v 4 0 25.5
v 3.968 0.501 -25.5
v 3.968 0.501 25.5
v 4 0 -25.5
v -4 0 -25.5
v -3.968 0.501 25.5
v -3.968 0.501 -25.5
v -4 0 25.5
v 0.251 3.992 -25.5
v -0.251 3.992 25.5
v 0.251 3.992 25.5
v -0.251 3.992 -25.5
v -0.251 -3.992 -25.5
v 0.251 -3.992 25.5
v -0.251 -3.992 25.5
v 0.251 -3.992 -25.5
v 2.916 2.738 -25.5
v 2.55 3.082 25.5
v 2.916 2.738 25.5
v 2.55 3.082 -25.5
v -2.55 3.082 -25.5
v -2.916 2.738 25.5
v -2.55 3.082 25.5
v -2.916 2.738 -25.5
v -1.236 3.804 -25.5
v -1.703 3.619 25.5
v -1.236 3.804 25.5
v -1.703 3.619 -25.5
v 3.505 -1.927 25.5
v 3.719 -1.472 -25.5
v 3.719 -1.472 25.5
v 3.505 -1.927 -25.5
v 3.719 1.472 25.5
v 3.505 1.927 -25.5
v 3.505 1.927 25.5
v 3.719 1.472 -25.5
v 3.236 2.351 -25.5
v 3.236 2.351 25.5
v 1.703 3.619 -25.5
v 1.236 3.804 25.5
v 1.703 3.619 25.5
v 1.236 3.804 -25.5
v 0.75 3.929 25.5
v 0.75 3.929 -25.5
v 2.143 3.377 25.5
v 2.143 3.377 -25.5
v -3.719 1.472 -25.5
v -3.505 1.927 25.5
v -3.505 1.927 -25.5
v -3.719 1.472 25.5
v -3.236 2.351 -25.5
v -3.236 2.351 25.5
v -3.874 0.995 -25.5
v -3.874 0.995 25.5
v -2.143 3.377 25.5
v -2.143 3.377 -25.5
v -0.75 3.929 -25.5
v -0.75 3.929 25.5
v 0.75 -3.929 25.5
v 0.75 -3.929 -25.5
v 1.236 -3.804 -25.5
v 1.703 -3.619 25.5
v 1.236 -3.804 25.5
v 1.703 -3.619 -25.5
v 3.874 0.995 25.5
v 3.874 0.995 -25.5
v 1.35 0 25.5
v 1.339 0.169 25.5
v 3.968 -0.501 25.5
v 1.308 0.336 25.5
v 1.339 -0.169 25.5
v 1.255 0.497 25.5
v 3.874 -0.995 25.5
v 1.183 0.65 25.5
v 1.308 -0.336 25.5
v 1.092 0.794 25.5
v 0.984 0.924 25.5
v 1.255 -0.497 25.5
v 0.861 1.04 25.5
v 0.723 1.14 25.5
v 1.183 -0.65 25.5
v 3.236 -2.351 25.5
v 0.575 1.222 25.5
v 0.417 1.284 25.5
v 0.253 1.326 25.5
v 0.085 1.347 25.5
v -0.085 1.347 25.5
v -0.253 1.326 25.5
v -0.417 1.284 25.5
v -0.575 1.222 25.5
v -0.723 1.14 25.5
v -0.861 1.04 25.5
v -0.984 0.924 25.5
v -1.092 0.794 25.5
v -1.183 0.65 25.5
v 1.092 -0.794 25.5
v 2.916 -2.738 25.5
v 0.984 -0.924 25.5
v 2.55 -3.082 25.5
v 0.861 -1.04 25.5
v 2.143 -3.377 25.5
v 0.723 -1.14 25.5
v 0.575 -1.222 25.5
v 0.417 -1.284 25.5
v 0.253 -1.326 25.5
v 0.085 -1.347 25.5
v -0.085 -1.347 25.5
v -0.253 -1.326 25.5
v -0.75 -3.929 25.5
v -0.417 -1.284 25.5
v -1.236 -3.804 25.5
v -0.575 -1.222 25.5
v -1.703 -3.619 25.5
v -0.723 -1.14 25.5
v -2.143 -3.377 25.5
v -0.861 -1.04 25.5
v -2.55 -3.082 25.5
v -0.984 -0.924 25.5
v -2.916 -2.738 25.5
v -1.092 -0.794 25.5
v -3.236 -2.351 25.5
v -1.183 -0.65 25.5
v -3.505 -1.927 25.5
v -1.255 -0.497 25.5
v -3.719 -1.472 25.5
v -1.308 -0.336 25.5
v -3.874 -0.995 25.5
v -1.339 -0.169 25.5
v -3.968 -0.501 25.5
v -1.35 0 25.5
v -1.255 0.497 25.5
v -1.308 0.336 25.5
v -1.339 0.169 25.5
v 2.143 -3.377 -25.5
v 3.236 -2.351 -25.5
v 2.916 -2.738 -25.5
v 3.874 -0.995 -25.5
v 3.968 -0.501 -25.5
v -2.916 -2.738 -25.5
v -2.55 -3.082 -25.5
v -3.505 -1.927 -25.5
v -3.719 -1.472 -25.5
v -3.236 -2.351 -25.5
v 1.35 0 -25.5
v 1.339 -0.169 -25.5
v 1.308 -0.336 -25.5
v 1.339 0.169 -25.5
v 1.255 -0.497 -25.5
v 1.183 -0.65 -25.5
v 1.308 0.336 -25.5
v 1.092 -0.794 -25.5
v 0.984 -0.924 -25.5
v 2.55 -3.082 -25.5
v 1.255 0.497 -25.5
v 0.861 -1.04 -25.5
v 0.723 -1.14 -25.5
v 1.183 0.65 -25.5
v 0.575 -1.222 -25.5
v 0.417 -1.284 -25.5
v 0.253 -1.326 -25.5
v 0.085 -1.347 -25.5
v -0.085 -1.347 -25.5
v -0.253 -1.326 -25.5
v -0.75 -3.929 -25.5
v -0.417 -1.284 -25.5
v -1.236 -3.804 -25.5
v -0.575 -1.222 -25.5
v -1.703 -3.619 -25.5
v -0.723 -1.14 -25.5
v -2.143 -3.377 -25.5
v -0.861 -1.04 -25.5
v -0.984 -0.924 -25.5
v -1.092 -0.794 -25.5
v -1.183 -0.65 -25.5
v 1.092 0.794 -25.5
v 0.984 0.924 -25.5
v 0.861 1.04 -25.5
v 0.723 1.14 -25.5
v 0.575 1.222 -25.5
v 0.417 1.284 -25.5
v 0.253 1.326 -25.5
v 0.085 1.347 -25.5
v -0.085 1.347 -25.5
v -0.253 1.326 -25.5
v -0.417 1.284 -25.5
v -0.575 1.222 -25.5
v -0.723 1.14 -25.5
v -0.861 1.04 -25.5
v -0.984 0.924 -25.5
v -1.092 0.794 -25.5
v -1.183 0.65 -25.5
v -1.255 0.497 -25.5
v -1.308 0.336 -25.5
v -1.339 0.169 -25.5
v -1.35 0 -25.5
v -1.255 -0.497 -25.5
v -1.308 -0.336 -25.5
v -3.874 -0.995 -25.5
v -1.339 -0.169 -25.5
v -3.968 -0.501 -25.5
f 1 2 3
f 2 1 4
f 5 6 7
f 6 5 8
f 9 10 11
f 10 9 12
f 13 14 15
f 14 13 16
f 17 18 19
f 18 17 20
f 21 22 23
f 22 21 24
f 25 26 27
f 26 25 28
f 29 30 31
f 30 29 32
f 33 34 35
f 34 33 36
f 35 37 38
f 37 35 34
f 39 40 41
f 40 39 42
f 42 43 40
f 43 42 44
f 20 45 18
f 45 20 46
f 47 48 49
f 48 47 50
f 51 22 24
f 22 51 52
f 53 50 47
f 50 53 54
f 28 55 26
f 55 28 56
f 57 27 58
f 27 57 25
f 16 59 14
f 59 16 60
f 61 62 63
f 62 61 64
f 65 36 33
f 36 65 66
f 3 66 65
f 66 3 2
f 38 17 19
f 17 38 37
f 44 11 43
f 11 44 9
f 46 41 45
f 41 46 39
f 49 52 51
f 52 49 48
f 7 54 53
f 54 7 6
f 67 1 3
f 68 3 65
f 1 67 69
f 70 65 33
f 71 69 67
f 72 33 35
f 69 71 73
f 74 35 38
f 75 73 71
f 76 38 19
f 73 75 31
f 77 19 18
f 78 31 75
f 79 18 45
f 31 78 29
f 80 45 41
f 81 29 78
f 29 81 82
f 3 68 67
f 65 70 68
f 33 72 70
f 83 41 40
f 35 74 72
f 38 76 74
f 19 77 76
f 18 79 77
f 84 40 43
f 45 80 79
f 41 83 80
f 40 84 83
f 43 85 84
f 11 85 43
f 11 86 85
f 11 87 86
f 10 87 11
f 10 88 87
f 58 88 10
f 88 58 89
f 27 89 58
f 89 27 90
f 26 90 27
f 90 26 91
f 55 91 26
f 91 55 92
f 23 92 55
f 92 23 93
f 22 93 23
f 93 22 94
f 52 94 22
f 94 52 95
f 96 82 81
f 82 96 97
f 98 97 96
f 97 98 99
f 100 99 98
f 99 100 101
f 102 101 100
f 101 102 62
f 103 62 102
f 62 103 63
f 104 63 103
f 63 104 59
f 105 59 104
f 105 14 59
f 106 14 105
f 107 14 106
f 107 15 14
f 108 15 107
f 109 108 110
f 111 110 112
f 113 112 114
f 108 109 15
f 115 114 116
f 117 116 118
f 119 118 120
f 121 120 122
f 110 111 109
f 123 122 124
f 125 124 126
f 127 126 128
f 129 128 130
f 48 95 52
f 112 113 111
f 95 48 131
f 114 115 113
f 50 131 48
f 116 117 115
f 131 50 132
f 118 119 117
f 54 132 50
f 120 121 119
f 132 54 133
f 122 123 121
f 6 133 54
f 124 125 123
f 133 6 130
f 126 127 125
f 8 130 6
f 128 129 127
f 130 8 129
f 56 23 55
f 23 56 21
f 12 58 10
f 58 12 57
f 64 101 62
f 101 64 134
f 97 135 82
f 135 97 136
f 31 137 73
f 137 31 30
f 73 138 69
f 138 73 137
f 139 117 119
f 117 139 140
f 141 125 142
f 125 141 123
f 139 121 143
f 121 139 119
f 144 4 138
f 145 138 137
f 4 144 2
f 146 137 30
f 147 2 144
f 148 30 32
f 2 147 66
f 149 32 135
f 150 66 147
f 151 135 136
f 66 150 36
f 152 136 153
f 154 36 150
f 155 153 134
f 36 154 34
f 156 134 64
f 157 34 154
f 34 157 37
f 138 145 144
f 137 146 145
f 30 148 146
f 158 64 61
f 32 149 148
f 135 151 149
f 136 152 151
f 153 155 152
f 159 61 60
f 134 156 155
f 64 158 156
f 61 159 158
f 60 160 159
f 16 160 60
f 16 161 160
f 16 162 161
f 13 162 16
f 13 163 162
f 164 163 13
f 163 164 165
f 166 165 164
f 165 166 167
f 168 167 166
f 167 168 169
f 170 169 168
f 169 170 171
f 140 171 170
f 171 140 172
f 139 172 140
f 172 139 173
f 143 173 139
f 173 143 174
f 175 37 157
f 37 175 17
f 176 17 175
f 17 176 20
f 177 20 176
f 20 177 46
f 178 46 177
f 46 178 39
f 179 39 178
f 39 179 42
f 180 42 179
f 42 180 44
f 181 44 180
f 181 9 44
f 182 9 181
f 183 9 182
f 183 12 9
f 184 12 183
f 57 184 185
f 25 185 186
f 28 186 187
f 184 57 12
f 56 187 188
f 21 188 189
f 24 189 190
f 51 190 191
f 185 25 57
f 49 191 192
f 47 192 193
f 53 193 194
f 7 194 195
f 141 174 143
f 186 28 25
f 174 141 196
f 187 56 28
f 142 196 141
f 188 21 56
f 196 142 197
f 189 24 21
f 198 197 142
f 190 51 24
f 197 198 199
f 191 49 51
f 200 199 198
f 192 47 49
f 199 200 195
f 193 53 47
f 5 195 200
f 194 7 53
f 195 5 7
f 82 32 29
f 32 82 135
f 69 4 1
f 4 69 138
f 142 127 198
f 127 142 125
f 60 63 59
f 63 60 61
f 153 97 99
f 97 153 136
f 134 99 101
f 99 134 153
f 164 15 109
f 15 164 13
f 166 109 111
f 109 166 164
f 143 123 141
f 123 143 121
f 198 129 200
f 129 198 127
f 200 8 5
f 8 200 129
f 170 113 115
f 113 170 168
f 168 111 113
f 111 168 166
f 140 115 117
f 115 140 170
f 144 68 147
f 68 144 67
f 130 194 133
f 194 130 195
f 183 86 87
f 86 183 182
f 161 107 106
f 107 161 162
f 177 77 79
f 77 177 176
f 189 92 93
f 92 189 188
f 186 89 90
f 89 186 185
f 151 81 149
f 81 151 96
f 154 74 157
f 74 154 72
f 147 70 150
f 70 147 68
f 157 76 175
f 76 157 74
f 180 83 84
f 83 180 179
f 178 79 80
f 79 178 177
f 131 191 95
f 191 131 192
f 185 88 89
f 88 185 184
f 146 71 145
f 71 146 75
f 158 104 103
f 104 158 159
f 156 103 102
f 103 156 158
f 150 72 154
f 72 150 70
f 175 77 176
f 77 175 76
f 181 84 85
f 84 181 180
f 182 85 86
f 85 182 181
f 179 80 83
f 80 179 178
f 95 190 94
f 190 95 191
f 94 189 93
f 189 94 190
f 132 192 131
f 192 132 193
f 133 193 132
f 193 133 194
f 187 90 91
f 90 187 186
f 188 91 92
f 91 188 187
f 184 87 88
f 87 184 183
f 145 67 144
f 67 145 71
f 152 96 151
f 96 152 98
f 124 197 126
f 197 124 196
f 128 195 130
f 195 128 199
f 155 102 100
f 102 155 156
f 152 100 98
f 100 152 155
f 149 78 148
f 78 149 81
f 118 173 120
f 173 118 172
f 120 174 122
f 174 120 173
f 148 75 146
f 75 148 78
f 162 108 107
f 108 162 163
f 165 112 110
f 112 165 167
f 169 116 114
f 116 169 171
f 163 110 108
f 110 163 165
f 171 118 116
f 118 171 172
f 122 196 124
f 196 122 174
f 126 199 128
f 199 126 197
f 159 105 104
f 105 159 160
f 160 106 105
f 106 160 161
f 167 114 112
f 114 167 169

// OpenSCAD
$fn = 50;


difference() {
	union() {
		translate(v = [0, 0, -25.5000000000]) {
			cylinder(h = 51, r = 4.0000000000);
		}
	}
	union() {
		translate(v = [0, 0, -100.0000000000]) {
			cylinder(h = 200, r = 1.3500000000);
		}
	}
}
